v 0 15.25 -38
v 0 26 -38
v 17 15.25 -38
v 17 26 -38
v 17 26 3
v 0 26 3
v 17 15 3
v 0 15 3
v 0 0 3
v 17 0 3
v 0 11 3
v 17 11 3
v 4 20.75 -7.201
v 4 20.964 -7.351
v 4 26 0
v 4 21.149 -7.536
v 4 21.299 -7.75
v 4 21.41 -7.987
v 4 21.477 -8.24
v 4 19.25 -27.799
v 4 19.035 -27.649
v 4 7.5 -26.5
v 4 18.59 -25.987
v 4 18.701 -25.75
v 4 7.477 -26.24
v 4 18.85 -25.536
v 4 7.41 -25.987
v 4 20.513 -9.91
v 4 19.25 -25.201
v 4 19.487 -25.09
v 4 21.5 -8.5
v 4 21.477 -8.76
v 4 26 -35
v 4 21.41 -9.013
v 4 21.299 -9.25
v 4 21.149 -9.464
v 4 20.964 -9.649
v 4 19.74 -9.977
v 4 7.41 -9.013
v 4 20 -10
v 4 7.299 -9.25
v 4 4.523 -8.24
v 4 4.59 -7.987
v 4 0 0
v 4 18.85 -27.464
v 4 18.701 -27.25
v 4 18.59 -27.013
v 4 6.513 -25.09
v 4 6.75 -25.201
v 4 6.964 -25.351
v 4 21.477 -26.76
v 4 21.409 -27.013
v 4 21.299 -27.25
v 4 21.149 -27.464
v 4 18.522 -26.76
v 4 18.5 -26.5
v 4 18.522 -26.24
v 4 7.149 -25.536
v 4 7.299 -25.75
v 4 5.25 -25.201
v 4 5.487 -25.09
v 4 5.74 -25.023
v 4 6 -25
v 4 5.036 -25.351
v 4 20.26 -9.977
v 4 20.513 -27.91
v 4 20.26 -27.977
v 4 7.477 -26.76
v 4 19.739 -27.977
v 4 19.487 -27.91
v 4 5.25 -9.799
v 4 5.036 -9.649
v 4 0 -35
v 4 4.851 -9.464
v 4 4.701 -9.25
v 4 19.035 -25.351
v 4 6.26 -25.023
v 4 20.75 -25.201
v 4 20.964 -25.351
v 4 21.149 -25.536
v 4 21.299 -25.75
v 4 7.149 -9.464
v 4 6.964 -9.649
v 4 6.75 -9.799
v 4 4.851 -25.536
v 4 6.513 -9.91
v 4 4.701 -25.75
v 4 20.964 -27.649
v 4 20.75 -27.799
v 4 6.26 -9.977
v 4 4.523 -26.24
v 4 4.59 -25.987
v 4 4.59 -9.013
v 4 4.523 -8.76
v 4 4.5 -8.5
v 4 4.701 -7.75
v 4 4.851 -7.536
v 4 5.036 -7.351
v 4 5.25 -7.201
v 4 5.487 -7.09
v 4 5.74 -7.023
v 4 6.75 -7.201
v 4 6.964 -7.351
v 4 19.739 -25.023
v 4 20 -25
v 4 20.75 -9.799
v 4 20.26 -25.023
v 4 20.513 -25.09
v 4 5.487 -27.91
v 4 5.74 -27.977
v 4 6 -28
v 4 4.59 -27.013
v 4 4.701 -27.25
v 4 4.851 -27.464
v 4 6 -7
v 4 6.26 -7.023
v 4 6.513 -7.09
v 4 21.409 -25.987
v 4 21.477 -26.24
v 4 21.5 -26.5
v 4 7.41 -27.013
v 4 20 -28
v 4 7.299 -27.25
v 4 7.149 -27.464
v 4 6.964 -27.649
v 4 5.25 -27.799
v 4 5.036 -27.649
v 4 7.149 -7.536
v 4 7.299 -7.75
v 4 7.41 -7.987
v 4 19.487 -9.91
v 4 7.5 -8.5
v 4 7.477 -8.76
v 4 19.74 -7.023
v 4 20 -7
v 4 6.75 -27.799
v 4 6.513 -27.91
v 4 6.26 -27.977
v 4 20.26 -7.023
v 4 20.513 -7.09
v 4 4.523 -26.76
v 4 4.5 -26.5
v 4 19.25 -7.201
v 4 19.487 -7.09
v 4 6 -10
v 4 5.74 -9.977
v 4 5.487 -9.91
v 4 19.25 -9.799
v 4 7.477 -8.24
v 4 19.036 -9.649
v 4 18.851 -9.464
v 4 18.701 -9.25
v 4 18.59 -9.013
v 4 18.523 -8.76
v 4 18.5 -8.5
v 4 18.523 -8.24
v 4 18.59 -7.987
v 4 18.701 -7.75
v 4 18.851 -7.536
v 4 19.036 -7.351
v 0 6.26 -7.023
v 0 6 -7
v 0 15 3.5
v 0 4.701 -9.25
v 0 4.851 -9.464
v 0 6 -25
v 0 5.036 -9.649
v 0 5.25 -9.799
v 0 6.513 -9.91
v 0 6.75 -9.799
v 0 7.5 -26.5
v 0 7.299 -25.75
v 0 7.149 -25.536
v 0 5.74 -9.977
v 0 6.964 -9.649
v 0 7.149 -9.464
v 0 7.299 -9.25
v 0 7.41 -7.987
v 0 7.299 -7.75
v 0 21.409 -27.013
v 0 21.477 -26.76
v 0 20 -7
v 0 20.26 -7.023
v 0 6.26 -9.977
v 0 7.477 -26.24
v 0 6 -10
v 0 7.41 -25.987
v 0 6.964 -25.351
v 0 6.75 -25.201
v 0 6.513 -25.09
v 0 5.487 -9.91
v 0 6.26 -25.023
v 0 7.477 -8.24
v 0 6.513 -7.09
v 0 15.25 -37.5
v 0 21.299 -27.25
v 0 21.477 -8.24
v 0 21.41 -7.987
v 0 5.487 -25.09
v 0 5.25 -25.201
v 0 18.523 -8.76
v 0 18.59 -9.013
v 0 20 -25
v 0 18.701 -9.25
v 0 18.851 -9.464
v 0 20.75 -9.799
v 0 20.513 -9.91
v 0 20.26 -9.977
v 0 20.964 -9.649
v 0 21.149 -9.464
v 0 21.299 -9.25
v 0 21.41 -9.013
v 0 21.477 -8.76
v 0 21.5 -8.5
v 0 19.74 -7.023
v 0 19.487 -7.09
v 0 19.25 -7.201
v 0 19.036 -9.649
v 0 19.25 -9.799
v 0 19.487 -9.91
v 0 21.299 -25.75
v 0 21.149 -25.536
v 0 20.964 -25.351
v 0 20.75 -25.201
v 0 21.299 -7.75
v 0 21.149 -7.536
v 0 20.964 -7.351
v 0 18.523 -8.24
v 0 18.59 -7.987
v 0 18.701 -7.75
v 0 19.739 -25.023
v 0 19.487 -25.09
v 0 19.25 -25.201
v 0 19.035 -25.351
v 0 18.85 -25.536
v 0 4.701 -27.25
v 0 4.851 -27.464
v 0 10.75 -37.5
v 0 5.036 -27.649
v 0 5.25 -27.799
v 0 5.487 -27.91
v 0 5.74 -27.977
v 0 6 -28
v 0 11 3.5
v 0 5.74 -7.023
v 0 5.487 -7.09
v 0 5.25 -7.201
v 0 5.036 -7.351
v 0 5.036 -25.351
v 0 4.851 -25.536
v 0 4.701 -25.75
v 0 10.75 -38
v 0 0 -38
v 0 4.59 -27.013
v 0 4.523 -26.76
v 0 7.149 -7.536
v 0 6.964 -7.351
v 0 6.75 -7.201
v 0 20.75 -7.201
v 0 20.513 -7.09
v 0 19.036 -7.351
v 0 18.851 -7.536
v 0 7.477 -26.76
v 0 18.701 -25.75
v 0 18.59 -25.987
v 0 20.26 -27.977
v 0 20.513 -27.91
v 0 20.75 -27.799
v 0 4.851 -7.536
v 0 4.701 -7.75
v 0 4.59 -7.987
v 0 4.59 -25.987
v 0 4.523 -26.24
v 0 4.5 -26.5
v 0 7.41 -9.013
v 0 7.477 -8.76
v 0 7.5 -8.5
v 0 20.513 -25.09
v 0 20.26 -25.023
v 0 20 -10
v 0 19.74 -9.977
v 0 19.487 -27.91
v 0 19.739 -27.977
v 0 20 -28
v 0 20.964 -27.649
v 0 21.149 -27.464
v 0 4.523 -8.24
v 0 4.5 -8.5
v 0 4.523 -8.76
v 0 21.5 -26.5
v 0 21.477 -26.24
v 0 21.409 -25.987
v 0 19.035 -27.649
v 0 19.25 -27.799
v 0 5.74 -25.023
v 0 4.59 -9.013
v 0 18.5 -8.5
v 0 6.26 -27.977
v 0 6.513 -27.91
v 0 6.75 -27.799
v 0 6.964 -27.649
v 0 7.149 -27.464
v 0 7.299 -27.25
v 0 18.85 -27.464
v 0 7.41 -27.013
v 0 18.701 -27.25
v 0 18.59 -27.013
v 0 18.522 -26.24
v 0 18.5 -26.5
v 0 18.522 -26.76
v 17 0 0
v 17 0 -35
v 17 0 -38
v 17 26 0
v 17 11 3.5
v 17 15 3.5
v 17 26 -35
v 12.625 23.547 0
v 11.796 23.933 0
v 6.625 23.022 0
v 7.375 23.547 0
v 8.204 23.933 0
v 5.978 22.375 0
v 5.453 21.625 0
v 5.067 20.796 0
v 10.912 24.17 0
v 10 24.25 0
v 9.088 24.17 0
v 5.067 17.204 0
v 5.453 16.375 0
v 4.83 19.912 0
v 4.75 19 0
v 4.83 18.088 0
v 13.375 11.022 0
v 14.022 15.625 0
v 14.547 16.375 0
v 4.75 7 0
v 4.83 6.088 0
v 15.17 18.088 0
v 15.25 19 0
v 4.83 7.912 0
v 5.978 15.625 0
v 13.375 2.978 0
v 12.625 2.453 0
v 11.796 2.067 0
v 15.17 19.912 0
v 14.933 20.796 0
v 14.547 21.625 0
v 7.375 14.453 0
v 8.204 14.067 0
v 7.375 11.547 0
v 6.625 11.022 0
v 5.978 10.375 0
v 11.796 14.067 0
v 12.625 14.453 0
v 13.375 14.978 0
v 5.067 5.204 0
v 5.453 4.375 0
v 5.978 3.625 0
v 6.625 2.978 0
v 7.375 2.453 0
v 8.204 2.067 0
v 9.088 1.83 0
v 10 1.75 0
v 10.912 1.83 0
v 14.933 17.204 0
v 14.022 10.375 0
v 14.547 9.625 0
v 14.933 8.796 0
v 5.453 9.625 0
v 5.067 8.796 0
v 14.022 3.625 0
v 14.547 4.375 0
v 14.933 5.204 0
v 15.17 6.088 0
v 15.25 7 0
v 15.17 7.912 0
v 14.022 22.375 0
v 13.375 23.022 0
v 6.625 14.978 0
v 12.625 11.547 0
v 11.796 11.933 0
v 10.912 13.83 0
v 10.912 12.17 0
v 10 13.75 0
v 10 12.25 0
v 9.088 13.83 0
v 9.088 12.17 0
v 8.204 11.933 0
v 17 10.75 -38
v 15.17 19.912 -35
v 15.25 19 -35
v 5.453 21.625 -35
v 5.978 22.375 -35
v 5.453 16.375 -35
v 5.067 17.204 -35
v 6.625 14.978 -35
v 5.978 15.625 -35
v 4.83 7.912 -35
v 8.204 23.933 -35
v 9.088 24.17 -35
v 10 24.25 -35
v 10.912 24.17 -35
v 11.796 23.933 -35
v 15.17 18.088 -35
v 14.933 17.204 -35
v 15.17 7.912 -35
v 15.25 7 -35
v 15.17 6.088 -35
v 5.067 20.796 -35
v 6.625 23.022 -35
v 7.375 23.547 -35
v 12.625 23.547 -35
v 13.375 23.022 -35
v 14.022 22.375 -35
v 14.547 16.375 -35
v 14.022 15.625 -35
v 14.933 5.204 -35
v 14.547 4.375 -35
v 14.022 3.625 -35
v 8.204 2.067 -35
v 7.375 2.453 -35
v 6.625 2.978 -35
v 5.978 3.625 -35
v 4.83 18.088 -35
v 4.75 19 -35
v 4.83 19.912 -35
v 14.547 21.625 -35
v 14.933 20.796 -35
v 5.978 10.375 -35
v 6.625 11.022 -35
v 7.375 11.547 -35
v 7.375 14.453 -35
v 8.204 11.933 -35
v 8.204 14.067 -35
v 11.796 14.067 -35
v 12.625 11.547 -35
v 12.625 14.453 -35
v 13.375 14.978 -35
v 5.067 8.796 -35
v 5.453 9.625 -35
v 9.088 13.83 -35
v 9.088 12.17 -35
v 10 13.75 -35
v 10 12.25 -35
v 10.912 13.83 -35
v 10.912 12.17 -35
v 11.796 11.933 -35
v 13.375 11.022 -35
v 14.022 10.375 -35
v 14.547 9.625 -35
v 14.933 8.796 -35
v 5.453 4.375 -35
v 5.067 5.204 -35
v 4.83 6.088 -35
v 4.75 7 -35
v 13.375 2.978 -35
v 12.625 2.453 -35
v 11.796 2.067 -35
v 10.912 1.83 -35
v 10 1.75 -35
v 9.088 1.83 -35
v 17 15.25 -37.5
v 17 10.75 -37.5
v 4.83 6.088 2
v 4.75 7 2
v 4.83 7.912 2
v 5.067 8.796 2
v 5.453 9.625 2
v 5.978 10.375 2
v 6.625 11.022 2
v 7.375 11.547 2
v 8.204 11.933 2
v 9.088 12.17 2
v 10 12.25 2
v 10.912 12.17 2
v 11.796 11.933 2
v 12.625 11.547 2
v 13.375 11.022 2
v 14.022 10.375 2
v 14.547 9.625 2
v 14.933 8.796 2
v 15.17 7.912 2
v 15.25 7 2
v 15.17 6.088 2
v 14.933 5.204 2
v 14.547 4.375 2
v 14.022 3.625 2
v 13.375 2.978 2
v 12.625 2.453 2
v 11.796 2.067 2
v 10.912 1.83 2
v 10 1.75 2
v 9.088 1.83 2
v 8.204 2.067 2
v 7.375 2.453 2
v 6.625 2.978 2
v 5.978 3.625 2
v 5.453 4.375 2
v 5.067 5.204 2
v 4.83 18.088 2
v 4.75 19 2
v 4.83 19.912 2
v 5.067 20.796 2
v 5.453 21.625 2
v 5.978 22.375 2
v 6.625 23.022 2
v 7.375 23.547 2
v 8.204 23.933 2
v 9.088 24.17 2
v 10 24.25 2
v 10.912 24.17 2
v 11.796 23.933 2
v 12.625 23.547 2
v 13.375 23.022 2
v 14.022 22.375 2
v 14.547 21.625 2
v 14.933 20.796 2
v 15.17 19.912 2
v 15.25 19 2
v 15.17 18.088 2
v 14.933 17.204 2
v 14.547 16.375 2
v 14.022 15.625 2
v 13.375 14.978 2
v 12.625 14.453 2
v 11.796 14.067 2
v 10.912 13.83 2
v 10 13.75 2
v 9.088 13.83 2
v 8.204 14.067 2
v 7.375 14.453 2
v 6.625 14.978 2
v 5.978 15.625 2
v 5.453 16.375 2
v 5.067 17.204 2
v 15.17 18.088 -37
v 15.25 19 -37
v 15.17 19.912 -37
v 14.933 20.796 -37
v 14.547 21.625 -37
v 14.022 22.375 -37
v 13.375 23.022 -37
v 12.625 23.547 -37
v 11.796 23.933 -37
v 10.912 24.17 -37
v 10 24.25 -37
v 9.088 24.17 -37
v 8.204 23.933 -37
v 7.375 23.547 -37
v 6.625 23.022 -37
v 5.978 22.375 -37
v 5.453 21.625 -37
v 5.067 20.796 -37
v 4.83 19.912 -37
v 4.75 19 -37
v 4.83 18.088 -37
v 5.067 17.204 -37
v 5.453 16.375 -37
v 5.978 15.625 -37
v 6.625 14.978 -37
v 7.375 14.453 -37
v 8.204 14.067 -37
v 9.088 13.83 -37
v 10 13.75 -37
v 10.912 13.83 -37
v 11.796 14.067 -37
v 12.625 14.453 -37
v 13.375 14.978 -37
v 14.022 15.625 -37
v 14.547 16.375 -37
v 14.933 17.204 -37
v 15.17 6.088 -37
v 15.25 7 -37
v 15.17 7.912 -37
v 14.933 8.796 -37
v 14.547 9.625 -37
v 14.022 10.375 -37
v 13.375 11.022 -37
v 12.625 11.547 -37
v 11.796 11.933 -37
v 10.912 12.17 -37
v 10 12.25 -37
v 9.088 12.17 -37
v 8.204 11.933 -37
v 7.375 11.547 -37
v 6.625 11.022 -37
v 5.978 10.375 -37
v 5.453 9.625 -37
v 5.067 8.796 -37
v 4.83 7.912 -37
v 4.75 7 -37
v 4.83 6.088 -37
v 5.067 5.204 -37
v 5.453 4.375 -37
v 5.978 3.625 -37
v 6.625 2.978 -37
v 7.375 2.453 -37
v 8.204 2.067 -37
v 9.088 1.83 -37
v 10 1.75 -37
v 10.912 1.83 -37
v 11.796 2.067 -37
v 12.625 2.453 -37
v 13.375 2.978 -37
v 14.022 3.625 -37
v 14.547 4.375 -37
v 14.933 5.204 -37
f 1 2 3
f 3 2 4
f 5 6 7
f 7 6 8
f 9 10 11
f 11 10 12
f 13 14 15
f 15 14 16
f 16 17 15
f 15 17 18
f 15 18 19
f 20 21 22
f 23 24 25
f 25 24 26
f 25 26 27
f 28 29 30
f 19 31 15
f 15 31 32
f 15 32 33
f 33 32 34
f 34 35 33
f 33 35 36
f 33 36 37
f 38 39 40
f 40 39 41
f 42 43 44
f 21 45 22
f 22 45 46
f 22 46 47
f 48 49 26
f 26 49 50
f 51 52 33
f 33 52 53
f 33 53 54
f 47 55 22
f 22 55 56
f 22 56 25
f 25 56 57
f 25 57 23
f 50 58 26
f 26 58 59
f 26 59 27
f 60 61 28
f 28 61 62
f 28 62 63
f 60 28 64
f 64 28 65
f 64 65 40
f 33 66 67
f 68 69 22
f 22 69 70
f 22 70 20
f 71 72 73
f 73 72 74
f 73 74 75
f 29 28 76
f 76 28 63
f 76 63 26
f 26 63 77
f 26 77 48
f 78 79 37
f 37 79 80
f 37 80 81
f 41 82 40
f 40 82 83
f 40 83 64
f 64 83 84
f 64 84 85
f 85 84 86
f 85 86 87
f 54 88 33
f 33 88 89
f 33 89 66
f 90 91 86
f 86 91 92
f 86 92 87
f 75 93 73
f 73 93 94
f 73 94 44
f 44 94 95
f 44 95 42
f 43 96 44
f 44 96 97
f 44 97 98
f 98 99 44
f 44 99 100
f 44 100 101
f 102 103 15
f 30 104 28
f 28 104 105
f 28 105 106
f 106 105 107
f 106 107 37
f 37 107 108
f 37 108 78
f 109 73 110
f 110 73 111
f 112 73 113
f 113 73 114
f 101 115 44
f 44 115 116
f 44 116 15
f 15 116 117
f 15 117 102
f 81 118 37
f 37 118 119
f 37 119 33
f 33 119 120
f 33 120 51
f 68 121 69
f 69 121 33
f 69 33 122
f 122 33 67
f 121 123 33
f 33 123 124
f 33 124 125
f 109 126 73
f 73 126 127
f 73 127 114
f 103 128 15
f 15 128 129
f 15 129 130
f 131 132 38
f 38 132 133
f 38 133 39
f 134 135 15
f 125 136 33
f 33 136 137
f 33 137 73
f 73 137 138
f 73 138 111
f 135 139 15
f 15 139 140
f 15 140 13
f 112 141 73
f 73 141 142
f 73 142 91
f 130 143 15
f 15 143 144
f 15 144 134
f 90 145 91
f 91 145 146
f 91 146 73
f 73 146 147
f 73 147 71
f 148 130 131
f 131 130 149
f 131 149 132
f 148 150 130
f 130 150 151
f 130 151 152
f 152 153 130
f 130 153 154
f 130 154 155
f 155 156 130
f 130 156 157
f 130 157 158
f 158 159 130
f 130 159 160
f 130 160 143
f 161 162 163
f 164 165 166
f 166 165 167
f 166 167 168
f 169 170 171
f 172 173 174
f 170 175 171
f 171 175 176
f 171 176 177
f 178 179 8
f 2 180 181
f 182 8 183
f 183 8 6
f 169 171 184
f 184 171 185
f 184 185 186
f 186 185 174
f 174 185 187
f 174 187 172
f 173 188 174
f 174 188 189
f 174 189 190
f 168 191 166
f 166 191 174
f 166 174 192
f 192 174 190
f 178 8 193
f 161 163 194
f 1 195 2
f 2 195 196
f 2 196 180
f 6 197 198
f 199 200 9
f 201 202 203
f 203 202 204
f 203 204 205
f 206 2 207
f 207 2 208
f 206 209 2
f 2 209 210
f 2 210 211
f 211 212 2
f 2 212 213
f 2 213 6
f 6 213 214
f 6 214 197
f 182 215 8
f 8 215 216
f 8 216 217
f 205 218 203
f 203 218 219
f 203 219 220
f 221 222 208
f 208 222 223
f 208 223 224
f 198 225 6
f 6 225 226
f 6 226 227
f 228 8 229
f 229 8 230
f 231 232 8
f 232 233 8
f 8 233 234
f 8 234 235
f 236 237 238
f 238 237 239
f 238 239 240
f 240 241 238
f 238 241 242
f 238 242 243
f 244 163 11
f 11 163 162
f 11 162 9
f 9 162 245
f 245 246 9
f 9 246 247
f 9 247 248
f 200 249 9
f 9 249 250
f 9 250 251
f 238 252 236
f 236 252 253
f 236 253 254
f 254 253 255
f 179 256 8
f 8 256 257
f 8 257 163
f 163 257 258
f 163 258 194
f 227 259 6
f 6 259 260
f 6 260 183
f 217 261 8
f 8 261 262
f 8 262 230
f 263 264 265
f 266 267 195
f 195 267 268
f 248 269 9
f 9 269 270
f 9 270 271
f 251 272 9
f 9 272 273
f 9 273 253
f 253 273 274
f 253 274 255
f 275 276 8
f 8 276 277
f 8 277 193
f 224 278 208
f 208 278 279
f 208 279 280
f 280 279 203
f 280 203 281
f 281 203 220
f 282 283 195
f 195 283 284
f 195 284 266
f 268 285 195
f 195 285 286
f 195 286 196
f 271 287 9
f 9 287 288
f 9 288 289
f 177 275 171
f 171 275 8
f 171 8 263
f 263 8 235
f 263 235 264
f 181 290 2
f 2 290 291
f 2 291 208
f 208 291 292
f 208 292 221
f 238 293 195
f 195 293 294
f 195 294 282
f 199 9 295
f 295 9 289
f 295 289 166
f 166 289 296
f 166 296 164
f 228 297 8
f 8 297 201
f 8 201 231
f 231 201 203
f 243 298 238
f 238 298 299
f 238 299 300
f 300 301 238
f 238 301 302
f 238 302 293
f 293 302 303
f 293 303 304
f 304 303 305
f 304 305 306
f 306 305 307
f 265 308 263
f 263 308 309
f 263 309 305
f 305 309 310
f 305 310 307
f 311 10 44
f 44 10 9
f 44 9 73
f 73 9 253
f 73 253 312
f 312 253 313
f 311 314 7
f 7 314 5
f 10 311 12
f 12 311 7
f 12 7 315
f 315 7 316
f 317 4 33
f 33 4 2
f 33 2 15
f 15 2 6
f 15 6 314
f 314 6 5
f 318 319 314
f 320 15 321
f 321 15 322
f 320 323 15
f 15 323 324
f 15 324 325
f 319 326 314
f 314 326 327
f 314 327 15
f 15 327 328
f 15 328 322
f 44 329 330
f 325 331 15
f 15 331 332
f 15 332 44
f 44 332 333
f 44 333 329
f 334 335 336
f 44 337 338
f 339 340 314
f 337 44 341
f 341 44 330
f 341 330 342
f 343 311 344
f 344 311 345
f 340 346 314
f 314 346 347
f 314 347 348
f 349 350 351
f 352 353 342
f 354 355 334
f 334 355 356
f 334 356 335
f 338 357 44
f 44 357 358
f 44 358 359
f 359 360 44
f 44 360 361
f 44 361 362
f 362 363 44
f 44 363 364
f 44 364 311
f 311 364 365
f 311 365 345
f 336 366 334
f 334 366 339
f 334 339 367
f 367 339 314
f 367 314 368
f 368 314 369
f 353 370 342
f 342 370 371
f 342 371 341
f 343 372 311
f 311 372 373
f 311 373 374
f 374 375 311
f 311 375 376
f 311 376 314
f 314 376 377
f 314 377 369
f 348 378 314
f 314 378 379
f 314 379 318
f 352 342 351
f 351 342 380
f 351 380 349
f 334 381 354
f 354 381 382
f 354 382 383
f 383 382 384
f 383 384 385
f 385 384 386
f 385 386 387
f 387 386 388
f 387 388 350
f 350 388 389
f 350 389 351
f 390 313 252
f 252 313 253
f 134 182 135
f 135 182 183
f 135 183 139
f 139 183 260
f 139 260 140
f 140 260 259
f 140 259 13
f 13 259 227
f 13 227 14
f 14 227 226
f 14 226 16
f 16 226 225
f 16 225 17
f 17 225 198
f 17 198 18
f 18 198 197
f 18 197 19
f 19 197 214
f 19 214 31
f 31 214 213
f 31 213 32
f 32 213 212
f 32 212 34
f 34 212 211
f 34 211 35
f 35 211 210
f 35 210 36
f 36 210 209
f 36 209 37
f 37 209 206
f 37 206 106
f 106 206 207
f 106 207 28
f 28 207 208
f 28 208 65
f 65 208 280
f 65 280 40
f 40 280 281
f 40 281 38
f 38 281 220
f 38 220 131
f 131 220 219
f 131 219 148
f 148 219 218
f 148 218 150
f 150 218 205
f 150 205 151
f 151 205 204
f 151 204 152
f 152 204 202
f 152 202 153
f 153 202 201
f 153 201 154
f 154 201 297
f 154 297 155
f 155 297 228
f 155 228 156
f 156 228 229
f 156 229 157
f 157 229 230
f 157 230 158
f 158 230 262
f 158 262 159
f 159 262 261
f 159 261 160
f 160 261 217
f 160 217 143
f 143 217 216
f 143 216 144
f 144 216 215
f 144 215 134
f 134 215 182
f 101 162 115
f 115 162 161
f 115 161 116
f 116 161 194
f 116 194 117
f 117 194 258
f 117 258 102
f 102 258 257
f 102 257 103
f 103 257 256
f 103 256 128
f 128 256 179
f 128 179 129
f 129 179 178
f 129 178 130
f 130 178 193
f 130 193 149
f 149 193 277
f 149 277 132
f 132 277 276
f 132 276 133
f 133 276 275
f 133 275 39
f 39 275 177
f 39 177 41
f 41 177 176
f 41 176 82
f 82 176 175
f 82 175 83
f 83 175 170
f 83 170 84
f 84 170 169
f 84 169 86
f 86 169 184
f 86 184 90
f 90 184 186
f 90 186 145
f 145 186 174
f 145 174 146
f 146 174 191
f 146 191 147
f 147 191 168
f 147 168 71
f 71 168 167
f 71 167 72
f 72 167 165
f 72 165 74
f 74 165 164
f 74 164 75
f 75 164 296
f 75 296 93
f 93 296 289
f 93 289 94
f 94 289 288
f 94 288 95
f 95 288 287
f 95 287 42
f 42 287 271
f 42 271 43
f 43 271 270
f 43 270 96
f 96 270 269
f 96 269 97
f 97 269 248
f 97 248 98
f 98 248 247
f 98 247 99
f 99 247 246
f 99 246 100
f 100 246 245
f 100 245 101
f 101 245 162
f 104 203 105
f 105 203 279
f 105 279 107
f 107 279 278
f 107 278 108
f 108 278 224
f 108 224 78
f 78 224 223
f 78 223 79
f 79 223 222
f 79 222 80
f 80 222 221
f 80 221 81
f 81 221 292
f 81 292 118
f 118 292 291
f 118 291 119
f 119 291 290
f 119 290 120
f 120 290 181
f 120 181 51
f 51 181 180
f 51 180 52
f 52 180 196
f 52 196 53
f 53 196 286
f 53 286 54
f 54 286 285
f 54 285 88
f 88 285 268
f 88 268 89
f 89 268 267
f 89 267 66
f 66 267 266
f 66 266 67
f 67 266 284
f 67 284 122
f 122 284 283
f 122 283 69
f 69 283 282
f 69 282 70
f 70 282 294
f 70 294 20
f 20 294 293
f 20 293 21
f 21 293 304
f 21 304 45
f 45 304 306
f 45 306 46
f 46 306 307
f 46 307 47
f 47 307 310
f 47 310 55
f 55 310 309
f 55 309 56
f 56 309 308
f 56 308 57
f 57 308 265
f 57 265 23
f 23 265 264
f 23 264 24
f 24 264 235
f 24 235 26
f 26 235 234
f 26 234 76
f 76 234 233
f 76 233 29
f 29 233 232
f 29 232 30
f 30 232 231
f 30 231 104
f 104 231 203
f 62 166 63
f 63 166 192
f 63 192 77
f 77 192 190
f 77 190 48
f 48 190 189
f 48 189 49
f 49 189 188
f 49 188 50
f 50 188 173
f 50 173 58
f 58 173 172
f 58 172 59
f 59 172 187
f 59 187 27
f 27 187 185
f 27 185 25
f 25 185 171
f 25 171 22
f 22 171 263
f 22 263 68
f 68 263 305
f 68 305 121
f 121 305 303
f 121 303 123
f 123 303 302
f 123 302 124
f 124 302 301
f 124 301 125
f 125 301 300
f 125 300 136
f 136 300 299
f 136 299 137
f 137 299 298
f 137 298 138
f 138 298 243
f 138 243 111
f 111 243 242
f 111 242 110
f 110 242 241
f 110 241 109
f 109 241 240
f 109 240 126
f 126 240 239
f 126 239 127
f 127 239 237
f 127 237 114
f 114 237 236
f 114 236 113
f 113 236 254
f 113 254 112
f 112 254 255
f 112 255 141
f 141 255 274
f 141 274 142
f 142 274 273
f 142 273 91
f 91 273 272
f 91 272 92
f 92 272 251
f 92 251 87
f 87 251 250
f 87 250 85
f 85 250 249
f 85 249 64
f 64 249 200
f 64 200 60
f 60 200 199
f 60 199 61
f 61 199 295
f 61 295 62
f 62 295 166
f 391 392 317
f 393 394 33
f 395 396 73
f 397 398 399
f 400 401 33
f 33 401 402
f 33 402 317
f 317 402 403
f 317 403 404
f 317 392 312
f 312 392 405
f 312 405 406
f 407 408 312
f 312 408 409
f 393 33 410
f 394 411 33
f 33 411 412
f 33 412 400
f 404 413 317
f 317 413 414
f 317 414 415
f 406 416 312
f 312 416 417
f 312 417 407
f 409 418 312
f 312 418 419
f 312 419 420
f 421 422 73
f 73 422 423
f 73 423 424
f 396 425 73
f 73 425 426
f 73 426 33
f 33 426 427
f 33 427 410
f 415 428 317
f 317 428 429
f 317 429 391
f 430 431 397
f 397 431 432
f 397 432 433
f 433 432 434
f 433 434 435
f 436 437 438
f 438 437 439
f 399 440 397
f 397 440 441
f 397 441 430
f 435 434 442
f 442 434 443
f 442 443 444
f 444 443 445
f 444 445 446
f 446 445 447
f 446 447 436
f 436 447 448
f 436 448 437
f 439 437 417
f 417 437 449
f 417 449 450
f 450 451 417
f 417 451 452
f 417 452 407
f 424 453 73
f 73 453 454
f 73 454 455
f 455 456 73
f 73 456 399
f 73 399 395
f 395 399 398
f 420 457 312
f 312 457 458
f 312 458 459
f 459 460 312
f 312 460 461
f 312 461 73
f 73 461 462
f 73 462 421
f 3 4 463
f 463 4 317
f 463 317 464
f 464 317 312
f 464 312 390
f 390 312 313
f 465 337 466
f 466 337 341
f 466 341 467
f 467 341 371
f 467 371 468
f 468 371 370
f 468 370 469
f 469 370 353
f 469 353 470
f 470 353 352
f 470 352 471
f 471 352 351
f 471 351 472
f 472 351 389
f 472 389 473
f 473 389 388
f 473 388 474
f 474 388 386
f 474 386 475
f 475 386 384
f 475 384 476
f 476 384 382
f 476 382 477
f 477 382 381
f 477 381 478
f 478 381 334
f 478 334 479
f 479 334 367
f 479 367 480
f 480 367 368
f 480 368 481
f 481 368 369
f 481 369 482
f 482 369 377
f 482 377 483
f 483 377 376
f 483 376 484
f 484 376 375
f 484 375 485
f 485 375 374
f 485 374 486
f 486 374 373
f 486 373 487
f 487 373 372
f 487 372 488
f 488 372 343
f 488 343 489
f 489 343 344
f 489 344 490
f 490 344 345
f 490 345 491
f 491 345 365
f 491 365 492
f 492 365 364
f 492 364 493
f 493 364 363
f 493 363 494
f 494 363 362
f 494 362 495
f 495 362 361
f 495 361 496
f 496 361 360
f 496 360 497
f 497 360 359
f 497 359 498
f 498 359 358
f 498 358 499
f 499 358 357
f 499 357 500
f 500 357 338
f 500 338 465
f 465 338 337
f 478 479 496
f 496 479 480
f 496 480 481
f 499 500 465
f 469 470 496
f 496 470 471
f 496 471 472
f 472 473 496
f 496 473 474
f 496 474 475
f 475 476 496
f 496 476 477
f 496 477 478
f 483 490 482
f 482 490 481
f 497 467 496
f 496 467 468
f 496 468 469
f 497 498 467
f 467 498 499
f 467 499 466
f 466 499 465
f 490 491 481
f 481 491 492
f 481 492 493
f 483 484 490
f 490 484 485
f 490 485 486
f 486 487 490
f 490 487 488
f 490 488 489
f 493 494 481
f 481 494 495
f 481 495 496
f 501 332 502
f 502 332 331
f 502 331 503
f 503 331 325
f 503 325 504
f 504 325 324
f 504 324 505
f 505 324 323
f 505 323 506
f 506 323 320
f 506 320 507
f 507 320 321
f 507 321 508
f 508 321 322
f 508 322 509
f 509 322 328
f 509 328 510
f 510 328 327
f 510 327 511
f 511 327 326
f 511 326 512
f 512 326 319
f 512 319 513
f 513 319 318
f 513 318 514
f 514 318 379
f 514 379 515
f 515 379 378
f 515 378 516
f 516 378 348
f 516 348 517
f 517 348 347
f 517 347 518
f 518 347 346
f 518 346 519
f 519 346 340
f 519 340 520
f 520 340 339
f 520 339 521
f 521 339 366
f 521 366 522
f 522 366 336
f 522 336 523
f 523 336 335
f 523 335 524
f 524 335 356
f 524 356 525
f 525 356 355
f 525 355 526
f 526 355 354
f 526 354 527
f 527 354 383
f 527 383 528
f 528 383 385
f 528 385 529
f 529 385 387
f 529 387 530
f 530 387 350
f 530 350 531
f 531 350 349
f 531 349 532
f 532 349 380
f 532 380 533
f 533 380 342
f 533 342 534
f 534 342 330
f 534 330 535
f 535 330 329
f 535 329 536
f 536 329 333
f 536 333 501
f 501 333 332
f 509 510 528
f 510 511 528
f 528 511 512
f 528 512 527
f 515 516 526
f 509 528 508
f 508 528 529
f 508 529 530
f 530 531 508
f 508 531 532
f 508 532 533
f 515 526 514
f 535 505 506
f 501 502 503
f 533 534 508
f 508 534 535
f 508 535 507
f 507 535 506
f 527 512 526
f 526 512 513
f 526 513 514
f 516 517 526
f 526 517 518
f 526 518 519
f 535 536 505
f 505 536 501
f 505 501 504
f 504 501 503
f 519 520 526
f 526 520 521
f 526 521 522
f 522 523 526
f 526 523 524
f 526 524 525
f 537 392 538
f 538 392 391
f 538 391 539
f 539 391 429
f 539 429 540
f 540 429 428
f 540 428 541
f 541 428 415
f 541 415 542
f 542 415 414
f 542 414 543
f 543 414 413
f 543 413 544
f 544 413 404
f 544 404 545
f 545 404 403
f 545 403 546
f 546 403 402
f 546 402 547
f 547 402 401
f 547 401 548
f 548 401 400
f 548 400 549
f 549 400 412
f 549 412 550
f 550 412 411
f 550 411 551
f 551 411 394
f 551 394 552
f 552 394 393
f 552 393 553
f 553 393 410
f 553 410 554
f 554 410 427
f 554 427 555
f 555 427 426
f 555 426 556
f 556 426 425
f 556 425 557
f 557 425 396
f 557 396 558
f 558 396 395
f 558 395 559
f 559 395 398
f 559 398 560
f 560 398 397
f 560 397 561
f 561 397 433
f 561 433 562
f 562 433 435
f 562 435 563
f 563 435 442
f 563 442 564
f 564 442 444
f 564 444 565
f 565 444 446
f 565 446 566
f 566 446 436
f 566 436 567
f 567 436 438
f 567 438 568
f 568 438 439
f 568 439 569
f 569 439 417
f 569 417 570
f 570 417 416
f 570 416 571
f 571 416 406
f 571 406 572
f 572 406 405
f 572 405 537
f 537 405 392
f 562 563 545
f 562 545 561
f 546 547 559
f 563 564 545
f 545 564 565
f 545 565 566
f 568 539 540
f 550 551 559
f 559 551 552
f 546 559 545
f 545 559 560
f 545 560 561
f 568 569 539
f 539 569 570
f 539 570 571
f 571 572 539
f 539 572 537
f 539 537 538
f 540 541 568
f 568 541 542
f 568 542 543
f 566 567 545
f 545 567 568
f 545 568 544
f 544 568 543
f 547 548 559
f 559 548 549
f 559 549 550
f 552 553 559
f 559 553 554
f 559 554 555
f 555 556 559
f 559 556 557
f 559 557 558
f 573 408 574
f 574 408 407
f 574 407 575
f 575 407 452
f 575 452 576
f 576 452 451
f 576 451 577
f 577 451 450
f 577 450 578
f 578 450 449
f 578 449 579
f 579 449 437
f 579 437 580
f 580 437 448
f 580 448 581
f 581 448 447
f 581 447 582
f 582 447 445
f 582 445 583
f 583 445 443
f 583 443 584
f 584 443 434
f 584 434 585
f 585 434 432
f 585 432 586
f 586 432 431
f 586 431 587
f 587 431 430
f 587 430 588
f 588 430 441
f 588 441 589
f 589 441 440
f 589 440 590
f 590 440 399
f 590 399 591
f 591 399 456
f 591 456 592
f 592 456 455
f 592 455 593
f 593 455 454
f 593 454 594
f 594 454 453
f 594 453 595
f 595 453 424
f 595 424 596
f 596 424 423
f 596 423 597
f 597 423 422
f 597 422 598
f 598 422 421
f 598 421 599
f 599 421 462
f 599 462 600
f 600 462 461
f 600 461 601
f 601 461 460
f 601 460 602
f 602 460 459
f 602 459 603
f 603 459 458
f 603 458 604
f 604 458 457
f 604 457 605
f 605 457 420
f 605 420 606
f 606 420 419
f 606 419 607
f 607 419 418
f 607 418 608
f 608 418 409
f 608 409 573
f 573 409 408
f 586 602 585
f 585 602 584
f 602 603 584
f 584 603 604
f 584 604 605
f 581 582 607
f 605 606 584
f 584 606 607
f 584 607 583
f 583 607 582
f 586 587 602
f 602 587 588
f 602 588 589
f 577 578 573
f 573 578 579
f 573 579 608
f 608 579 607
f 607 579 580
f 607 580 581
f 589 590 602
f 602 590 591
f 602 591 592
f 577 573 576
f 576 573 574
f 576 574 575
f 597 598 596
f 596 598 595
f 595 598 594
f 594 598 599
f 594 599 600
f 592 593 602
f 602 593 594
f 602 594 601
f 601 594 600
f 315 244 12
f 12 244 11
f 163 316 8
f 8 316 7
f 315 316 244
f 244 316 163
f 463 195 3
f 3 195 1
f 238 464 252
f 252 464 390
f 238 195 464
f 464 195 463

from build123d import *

# Parameters (mm, degrees)
ESQUISSE1_W             = 17
ESQUISSE1_H             = 26
BOSS_EXTRU_1_DEPTH      = 3
ESQUISSE3_W             = 4
ESQUISSE3_H             = 26
BOSS_EXTRU_2_DEPTH      = 38
ESQUISSE4_R             = 1.5
ENL_V_MAT_EXTRU_2_DEPTH = 4
ESQUISSE5_R             = 1.5
ENL_V_MAT_EXTRU_3_DEPTH = 4
ESQUISSE6_W             = 3
ESQUISSE6_H             = 26
BOSS_EXTRU_3_DEPTH      = 13
ESQUISSE8_R             = 5.25
ENL_V_MAT_EXTRU_4_DEPTH = 2
ENL_V_START             = -2
ESQUISSE9_R             = 5.25
ENL_V_MAT_EXTRU_5_DEPTH = 2
ESQUISSE10_W            = 17
ESQUISSE10_H            = 4
BOSS_EXTRU_5_DEPTH      = 0.5
ESQUISSE11_W            = 17
ESQUISSE11_H            = 4.5
ENL_V_MAT_EXTRU_6_DEPTH = 0.5


with BuildPart() as part:
    # Esquisse1 → Boss.-Extru.1 (new body)
    with BuildSketch(Plane.XY):
        with Locations((8.5, 13)):
            Rectangle(ESQUISSE1_W, ESQUISSE1_H)
    extrude(amount=BOSS_EXTRU_1_DEPTH)

    # Esquisse3 → Boss.-Extru.2 (add)
    with BuildSketch(Plane(origin=(0, 0, 0), x_dir=(-1, 0, 0), z_dir=(0, 0, -1))):
        with Locations((-2, 13)):
            Rectangle(ESQUISSE3_W, ESQUISSE3_H)
    extrude(amount=BOSS_EXTRU_2_DEPTH)

    # Esquisse4 → Enlèv. mat.-Extru.2 (cut)
    with BuildSketch(Plane.ZY):
        with Locations((-8.5, 20)):
            Circle(ESQUISSE4_R)
        with Locations((-8.5, 6)):
            Circle(ESQUISSE4_R)
    extrude(amount=-ENL_V_MAT_EXTRU_2_DEPTH, mode=Mode.SUBTRACT)

    # Esquisse5 → Enlèv. mat.-Extru.3 (cut)
    with BuildSketch(Plane.ZY):
        with Locations((-26.5, 19.999545392)):
            Circle(ESQUISSE5_R)
        with Locations((-26.5, 6)):
            Circle(ESQUISSE5_R)
    extrude(amount=-ENL_V_MAT_EXTRU_3_DEPTH, mode=Mode.SUBTRACT)

    # Esquisse6 → Boss.-Extru.3 (add)
    with BuildSketch(Plane(origin=(4, 0, 0), x_dir=(0, 0, -1), z_dir=(1, 0, 0))):
        with Locations((36.5, 13)):
            Rectangle(ESQUISSE6_W, ESQUISSE6_H)
    extrude(amount=BOSS_EXTRU_3_DEPTH)

    # Esquisse8 → Enlèv. mat.-Extru.4 (cut)
    with BuildSketch(Plane(origin=(0, 0, 0), x_dir=(-1, 0, 0), z_dir=(0, 0, -1))):
        with Locations((-10, 7)):
            Circle(ESQUISSE8_R)
        with Locations((-10, 19)):
            Circle(ESQUISSE8_R)
    extrude(amount=-ENL_V_MAT_EXTRU_4_DEPTH, mode=Mode.SUBTRACT)

    # Esquisse9 → Enlèv. mat.-Extru.5 (cut)
    with BuildSketch(Plane.XY.offset(-35).offset(ENL_V_START)):
        with Locations(Location((10, 19, 0), (0, 0, 180))):
            Circle(ESQUISSE9_R)
        with Locations(Location((10, 7, 0), (0, 0, 180))):
            Circle(ESQUISSE9_R)
    extrude(amount=ENL_V_MAT_EXTRU_5_DEPTH, mode=Mode.SUBTRACT)

    # Esquisse10 → Boss.-Extru.5 (add)
    with BuildSketch(Plane.XY.offset(3)):
        with Locations((8.5, 13)):
            Rectangle(ESQUISSE10_W, ESQUISSE10_H)
    extrude(amount=BOSS_EXTRU_5_DEPTH)

    # Esquisse11 → Enlèv. mat.-Extru.6 (cut)
    with BuildSketch(Plane(origin=(0, 0, -38), x_dir=(-1, 0, 0), z_dir=(0, 0, -1))):
        with Locations((-8.5, 13)):
            Rectangle(ESQUISSE11_W, ESQUISSE11_H)
    extrude(amount=-ENL_V_MAT_EXTRU_6_DEPTH, mode=Mode.SUBTRACT)


solid = part.part
